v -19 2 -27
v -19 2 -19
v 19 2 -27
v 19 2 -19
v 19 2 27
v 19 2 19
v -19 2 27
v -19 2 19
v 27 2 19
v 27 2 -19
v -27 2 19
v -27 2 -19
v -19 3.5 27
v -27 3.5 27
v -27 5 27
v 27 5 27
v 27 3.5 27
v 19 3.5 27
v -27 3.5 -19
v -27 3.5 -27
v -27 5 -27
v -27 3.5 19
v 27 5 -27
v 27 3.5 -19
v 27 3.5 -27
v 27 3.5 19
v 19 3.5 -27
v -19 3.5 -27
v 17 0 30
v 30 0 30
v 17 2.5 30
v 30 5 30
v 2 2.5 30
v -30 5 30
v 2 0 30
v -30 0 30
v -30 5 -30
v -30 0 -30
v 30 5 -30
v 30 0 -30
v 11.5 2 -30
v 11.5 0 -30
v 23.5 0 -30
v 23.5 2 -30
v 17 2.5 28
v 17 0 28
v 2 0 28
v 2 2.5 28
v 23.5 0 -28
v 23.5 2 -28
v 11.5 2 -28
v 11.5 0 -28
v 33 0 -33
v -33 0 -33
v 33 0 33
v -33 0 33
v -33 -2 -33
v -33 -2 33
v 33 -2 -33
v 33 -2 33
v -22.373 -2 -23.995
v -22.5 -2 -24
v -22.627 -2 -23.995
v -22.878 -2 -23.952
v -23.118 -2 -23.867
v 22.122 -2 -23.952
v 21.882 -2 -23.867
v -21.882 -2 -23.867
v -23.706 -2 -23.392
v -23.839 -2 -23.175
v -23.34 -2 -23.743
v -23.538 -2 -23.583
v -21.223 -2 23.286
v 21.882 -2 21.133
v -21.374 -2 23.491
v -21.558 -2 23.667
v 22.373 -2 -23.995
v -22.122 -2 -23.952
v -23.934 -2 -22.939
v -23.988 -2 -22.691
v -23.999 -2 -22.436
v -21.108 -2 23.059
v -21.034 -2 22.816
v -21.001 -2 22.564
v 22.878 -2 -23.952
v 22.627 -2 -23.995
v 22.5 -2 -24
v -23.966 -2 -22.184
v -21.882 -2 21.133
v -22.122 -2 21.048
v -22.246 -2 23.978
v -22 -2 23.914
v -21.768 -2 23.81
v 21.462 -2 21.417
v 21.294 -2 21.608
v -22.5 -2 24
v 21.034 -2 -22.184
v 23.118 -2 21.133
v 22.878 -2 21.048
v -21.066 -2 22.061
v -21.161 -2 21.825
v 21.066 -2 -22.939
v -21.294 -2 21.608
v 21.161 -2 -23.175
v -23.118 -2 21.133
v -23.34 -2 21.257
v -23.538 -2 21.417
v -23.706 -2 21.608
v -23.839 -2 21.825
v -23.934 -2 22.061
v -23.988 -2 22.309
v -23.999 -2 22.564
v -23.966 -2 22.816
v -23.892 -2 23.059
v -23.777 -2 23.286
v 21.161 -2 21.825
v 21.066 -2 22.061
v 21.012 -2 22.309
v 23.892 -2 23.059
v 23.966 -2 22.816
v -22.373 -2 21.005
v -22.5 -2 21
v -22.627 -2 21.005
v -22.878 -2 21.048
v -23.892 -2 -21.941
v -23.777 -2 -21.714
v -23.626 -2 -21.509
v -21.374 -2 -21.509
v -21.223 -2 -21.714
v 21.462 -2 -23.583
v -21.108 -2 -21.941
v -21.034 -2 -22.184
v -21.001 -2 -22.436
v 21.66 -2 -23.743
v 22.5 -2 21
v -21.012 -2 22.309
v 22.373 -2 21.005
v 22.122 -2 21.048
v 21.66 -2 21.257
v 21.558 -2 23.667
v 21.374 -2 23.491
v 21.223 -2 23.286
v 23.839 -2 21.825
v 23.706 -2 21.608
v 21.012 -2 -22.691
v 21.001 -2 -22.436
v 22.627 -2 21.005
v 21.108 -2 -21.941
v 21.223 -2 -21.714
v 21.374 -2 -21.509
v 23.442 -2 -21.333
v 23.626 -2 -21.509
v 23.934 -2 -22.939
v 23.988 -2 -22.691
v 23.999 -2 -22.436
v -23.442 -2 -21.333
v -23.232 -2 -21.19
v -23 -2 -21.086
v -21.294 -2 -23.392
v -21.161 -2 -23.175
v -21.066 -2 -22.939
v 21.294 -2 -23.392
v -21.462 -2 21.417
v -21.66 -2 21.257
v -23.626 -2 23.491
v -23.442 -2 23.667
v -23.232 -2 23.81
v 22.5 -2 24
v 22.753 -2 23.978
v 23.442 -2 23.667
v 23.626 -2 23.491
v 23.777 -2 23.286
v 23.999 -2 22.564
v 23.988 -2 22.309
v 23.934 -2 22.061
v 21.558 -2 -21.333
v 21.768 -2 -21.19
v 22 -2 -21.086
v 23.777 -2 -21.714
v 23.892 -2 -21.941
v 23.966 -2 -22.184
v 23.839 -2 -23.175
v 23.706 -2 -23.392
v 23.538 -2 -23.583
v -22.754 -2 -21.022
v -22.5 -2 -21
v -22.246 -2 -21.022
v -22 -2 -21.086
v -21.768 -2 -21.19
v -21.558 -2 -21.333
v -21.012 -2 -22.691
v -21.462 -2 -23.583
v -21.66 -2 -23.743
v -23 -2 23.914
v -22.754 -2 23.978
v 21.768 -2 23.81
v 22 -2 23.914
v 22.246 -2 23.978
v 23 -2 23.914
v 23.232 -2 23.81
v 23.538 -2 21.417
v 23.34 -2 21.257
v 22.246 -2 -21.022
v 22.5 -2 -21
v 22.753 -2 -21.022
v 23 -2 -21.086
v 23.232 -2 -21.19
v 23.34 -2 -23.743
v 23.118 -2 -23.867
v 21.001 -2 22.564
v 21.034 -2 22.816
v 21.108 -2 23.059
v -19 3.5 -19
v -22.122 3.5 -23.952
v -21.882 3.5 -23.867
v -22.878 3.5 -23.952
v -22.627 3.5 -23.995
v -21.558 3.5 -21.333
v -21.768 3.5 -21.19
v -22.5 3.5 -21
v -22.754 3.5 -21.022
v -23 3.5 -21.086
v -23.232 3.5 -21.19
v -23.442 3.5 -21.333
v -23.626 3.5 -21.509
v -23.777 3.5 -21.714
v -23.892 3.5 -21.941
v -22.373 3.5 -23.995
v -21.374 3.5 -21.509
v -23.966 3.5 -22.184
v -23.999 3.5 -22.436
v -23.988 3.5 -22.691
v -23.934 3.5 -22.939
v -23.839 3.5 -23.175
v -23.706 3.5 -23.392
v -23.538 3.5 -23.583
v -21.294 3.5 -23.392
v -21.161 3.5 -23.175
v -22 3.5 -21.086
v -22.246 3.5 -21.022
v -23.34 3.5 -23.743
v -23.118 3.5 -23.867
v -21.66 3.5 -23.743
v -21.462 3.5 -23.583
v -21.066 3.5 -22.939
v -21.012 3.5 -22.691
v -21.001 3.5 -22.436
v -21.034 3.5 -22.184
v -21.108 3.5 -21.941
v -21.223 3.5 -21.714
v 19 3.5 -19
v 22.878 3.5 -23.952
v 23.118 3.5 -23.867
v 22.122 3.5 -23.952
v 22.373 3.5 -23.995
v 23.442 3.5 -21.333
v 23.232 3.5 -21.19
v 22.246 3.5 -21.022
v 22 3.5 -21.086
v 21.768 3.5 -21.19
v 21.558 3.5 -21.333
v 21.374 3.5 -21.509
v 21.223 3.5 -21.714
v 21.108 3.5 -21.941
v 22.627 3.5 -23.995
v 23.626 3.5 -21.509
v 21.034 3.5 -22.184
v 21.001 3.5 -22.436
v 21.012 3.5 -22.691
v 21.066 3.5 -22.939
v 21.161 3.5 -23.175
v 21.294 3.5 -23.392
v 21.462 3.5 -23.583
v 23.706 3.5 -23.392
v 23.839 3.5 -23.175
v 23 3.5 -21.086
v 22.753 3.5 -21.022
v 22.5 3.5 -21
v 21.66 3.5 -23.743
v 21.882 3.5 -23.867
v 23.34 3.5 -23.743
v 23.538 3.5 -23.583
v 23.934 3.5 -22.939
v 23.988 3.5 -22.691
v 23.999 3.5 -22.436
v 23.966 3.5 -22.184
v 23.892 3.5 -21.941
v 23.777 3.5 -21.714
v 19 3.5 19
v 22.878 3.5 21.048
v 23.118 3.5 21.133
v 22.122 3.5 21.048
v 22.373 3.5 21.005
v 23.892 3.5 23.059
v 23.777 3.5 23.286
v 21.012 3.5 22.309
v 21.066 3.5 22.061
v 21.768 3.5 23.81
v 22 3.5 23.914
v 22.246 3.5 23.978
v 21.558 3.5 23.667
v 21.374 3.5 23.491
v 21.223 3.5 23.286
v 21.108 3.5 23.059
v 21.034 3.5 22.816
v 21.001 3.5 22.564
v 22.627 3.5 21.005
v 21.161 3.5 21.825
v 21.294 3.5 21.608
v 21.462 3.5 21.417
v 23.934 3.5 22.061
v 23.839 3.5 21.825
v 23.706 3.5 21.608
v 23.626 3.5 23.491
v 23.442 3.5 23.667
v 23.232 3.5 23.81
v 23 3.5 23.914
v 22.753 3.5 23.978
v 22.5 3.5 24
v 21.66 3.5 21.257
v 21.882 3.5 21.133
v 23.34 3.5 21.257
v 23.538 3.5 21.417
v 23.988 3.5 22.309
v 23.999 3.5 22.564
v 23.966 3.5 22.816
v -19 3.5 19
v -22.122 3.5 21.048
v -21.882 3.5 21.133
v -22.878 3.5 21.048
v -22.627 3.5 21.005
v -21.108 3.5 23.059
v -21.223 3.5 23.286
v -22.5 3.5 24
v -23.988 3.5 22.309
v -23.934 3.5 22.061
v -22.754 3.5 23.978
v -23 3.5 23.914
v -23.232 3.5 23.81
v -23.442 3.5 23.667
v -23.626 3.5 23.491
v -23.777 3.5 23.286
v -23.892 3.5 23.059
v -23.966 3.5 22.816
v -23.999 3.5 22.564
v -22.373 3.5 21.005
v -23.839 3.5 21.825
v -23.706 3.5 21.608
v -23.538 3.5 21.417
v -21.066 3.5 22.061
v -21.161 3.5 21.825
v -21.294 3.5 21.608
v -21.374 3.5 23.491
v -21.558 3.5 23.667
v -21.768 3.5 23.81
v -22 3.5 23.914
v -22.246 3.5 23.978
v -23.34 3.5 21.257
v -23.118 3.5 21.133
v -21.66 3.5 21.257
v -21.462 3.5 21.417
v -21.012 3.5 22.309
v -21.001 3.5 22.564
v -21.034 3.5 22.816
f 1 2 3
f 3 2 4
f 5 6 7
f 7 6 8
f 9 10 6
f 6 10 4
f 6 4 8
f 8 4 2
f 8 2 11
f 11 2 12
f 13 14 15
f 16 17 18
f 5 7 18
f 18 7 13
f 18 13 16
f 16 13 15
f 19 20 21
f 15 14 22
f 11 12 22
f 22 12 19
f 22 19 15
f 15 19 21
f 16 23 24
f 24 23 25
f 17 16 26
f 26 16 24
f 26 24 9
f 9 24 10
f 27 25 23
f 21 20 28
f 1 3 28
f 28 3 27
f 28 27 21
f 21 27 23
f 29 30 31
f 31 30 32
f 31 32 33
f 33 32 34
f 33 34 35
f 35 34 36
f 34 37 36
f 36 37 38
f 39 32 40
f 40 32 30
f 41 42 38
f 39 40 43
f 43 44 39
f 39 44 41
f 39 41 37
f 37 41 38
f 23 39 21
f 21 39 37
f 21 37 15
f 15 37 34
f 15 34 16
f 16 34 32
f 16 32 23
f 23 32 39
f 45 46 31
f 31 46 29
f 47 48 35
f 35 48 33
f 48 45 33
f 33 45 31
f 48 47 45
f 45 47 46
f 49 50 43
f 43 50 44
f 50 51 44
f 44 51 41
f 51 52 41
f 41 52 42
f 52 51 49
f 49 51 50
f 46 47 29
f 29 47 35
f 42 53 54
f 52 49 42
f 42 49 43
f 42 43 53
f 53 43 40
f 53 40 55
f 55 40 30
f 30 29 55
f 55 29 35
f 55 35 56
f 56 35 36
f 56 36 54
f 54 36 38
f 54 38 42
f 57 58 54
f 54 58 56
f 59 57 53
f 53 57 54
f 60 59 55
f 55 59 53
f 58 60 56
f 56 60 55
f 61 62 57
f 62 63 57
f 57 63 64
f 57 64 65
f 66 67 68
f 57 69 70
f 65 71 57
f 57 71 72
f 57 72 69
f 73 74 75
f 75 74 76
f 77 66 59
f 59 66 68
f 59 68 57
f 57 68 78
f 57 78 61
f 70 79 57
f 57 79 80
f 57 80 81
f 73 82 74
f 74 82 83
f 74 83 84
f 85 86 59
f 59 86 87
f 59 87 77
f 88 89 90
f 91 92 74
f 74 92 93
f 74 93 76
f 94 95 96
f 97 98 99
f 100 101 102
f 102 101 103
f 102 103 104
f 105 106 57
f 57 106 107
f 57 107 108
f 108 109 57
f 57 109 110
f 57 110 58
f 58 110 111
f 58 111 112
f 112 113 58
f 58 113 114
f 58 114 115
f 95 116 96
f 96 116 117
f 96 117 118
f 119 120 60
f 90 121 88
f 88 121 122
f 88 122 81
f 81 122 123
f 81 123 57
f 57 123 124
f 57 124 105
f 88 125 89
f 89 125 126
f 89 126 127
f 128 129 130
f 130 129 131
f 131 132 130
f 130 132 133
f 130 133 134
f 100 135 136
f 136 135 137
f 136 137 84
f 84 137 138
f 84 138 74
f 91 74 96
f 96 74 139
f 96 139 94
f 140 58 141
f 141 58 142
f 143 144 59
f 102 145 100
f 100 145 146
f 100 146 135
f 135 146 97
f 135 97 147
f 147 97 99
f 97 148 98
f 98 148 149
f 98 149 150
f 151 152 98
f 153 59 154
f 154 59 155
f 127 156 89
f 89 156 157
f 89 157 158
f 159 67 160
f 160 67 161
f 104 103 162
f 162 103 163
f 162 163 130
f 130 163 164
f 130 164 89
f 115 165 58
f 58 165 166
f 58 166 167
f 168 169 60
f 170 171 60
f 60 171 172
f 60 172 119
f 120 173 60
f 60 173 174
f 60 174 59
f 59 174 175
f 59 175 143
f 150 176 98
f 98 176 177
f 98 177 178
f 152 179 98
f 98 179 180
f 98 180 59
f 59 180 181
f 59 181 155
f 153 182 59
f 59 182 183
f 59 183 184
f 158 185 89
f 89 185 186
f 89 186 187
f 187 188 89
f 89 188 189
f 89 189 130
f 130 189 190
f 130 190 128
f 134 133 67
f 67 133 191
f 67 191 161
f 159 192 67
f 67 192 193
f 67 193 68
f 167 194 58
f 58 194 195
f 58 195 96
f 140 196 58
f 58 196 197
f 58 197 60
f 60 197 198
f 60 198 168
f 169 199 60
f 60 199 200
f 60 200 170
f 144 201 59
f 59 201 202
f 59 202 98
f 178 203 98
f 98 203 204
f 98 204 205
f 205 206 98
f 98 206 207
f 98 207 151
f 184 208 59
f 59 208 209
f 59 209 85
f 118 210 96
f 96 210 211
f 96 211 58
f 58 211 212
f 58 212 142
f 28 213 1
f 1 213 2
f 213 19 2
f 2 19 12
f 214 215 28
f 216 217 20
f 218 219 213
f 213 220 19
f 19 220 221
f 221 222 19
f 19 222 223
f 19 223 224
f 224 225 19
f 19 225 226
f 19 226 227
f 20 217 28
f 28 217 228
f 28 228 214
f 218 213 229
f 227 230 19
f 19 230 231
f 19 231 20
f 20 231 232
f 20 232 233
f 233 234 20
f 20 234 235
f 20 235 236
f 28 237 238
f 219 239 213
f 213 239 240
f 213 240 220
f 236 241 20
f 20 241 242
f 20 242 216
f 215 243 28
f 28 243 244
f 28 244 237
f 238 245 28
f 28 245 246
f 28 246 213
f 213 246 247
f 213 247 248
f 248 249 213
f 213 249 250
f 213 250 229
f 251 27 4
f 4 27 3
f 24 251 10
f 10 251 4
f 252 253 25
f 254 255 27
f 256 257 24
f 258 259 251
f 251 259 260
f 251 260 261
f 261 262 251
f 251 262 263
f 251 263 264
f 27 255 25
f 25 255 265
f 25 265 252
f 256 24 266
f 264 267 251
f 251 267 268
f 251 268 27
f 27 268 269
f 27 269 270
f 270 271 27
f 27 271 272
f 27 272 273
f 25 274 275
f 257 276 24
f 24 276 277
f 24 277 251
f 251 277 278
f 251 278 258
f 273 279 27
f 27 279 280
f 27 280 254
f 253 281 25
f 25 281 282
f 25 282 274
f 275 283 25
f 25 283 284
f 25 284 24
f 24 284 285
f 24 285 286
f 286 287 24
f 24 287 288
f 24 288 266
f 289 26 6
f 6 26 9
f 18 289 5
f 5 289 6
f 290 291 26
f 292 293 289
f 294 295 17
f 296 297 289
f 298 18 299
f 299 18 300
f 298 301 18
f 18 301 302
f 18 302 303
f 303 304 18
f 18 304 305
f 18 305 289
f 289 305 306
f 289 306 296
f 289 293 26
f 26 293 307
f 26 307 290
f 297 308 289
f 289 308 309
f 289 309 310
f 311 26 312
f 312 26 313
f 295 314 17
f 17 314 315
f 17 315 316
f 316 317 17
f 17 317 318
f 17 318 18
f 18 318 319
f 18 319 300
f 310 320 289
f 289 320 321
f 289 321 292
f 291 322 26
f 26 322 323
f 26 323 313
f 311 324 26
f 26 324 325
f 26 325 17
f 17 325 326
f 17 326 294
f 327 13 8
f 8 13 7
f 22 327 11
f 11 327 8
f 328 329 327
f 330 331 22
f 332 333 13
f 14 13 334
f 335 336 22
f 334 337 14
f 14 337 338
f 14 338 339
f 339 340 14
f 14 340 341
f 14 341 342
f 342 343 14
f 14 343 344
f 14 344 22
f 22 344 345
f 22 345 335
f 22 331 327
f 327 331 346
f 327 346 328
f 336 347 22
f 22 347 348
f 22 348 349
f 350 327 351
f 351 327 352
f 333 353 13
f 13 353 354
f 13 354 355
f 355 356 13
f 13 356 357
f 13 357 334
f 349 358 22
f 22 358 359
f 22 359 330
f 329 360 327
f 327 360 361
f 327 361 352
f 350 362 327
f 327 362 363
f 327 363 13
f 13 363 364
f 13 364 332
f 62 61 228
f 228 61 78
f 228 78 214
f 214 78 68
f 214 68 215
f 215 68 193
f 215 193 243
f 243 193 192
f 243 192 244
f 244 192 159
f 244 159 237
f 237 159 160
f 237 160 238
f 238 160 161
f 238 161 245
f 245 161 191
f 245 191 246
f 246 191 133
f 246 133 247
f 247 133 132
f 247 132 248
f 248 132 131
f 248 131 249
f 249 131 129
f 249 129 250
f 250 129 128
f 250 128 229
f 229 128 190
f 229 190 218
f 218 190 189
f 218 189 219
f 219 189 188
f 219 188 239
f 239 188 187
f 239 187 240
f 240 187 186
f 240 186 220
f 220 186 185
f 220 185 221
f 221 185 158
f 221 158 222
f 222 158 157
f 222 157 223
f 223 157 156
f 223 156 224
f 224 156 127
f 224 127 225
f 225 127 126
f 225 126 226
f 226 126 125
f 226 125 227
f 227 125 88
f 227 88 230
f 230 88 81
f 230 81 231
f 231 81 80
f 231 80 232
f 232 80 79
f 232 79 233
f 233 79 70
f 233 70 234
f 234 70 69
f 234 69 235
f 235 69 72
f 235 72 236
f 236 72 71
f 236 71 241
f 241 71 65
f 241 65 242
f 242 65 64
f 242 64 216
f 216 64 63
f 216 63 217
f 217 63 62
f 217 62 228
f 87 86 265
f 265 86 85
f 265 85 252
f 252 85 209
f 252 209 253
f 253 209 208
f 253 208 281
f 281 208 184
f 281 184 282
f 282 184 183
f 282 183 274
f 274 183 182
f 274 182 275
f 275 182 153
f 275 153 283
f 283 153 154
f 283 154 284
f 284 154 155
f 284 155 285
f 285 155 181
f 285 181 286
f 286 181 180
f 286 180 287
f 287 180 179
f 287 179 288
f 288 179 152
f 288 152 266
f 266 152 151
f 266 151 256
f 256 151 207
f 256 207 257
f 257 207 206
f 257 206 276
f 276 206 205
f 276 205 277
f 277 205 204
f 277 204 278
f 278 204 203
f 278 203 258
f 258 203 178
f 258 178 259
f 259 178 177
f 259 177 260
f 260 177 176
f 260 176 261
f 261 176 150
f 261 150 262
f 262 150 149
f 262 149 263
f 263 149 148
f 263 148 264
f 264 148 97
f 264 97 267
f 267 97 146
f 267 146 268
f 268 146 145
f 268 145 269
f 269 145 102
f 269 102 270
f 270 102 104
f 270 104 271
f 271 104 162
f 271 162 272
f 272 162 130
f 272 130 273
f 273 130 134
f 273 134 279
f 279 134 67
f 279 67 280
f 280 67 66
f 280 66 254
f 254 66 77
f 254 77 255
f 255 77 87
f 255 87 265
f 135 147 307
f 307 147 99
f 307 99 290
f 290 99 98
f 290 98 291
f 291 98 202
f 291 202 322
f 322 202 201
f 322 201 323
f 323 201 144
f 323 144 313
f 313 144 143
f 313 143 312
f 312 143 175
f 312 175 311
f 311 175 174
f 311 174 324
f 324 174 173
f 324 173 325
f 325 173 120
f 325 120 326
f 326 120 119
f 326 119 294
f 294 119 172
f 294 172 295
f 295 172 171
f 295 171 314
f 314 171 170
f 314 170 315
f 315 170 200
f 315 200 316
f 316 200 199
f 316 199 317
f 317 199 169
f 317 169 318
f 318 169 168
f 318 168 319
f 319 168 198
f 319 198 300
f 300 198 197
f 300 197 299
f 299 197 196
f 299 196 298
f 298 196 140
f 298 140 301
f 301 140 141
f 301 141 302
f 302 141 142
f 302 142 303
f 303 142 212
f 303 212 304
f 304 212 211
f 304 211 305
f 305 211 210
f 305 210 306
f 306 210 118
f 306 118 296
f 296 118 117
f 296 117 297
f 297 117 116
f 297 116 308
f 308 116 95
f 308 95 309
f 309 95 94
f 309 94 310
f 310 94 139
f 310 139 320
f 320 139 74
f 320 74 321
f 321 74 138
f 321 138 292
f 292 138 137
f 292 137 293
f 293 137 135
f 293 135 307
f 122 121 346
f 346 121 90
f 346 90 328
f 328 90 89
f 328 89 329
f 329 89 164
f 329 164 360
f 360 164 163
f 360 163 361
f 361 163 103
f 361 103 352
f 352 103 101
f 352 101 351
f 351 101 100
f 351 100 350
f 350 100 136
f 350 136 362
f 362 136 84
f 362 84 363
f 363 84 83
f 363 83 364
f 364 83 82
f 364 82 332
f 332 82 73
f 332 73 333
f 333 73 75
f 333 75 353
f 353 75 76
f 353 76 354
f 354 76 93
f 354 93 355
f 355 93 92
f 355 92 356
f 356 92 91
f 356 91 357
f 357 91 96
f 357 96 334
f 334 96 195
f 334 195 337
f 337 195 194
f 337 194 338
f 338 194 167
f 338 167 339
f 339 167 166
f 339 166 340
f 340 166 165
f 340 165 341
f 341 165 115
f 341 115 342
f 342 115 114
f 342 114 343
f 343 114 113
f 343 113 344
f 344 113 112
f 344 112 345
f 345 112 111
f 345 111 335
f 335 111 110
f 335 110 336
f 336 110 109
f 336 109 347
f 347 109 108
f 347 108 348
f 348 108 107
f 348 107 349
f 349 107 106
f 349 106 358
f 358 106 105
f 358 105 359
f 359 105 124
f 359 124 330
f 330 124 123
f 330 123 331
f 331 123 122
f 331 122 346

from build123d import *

# Parameters (mm, degrees)
SKETCH1_W           = 60
SKETCH1_H           = 60
BOSS_EXTRUDE1_DEPTH = 5
SKETCH2_W           = 54
SKETCH2_H           = 54
CUT_EXTRUDE1_DEPTH  = 3
SKETCH5_W           = 15
SKETCH5_H           = 2.5
CUT_EXTRUDE3_DEPTH  = 2
SKETCH6_W           = 12
SKETCH6_H           = 2
CUT_EXTRUDE4_DEPTH  = 2
SKETCH7_W           = 66
SKETCH7_H           = 66
BOSS_EXTRUDE3_DEPTH = 2
SKETCH4_W           = 8
SKETCH4_H           = 8
BOSS_EXTRUDE2_DEPTH = 1.5
SKETCH3_R           = 1.5
CUT_EXTRUDE2_DEPTH  = 5.5


with BuildPart() as part:
    # Sketch1 → Boss-Extrude1 (new body)
    with BuildSketch(Plane(origin=(0, 0, 0), x_dir=(1, 0, 0), z_dir=(0, 1, 0))):
        Rectangle(SKETCH1_W, SKETCH1_H)
    extrude(amount=BOSS_EXTRUDE1_DEPTH)

    # Sketch2 → Cut-Extrude1 (cut)
    with BuildSketch(Plane(origin=(0, 5, 0), x_dir=(1, 0, 0), z_dir=(0, 1, 0))):
        Rectangle(SKETCH2_W, SKETCH2_H)
    extrude(amount=-CUT_EXTRUDE1_DEPTH, mode=Mode.SUBTRACT)

    # Sketch5 → Cut-Extrude3 (cut)
    with BuildSketch(Plane(origin=(0, 0, 30), x_dir=(-1, 0, 0), z_dir=(0, 0, -1))):
        with Locations((-9.5, 1.25)):
            Rectangle(SKETCH5_W, SKETCH5_H)
    extrude(amount=CUT_EXTRUDE3_DEPTH, mode=Mode.SUBTRACT)

    # Sketch6 → Cut-Extrude4 (cut)
    with BuildSketch(Plane(origin=(0, 0, -30), x_dir=(-1, 0, 0), z_dir=(0, 0, -1))):
        with Locations((-17.5, 1)):
            Rectangle(SKETCH6_W, SKETCH6_H)
    extrude(amount=-CUT_EXTRUDE4_DEPTH, mode=Mode.SUBTRACT)

    # Sketch7 → Boss-Extrude3 (add)
    with BuildSketch(Plane.XZ):
        Rectangle(SKETCH7_W, SKETCH7_H)
    extrude(amount=BOSS_EXTRUDE3_DEPTH)

    # Sketch4 → Boss-Extrude2 (add)
    with BuildSketch(Plane(origin=(0, 2, 0), x_dir=(1, 0, 0), z_dir=(0, 1, 0))):
        with Locations((23, 23)):
            Rectangle(SKETCH4_W, SKETCH4_H)
        with Locations((-23, 23)):
            Rectangle(SKETCH4_W, SKETCH4_H)
        with Locations((23, -23)):
            Rectangle(SKETCH4_W, SKETCH4_H)
        with Locations((-23, -23)):
            Rectangle(SKETCH4_W, SKETCH4_H)
    extrude(amount=BOSS_EXTRUDE2_DEPTH)

    # Sketch3 → Cut-Extrude2 (cut)
    with BuildSketch(Plane(origin=(0, 3.5, 0), x_dir=(1, 0, 0), z_dir=(0, 1, 0))):
        with Locations(Location((-22.5, 22.5, 0), (0, 0, 270))):
            Circle(SKETCH3_R)
        with Locations(Location((22.5, 22.5, 0), (0, 0, 270))):
            Circle(SKETCH3_R)
        with Locations(Location((22.5, -22.5, 0), (0, 0, 270))):
            Circle(SKETCH3_R)
        with Locations(Location((-22.5, -22.5, 0), (0, 0, 270))):
            Circle(SKETCH3_R)
    extrude(amount=-CUT_EXTRUDE2_DEPTH, mode=Mode.SUBTRACT)


solid = part.part
